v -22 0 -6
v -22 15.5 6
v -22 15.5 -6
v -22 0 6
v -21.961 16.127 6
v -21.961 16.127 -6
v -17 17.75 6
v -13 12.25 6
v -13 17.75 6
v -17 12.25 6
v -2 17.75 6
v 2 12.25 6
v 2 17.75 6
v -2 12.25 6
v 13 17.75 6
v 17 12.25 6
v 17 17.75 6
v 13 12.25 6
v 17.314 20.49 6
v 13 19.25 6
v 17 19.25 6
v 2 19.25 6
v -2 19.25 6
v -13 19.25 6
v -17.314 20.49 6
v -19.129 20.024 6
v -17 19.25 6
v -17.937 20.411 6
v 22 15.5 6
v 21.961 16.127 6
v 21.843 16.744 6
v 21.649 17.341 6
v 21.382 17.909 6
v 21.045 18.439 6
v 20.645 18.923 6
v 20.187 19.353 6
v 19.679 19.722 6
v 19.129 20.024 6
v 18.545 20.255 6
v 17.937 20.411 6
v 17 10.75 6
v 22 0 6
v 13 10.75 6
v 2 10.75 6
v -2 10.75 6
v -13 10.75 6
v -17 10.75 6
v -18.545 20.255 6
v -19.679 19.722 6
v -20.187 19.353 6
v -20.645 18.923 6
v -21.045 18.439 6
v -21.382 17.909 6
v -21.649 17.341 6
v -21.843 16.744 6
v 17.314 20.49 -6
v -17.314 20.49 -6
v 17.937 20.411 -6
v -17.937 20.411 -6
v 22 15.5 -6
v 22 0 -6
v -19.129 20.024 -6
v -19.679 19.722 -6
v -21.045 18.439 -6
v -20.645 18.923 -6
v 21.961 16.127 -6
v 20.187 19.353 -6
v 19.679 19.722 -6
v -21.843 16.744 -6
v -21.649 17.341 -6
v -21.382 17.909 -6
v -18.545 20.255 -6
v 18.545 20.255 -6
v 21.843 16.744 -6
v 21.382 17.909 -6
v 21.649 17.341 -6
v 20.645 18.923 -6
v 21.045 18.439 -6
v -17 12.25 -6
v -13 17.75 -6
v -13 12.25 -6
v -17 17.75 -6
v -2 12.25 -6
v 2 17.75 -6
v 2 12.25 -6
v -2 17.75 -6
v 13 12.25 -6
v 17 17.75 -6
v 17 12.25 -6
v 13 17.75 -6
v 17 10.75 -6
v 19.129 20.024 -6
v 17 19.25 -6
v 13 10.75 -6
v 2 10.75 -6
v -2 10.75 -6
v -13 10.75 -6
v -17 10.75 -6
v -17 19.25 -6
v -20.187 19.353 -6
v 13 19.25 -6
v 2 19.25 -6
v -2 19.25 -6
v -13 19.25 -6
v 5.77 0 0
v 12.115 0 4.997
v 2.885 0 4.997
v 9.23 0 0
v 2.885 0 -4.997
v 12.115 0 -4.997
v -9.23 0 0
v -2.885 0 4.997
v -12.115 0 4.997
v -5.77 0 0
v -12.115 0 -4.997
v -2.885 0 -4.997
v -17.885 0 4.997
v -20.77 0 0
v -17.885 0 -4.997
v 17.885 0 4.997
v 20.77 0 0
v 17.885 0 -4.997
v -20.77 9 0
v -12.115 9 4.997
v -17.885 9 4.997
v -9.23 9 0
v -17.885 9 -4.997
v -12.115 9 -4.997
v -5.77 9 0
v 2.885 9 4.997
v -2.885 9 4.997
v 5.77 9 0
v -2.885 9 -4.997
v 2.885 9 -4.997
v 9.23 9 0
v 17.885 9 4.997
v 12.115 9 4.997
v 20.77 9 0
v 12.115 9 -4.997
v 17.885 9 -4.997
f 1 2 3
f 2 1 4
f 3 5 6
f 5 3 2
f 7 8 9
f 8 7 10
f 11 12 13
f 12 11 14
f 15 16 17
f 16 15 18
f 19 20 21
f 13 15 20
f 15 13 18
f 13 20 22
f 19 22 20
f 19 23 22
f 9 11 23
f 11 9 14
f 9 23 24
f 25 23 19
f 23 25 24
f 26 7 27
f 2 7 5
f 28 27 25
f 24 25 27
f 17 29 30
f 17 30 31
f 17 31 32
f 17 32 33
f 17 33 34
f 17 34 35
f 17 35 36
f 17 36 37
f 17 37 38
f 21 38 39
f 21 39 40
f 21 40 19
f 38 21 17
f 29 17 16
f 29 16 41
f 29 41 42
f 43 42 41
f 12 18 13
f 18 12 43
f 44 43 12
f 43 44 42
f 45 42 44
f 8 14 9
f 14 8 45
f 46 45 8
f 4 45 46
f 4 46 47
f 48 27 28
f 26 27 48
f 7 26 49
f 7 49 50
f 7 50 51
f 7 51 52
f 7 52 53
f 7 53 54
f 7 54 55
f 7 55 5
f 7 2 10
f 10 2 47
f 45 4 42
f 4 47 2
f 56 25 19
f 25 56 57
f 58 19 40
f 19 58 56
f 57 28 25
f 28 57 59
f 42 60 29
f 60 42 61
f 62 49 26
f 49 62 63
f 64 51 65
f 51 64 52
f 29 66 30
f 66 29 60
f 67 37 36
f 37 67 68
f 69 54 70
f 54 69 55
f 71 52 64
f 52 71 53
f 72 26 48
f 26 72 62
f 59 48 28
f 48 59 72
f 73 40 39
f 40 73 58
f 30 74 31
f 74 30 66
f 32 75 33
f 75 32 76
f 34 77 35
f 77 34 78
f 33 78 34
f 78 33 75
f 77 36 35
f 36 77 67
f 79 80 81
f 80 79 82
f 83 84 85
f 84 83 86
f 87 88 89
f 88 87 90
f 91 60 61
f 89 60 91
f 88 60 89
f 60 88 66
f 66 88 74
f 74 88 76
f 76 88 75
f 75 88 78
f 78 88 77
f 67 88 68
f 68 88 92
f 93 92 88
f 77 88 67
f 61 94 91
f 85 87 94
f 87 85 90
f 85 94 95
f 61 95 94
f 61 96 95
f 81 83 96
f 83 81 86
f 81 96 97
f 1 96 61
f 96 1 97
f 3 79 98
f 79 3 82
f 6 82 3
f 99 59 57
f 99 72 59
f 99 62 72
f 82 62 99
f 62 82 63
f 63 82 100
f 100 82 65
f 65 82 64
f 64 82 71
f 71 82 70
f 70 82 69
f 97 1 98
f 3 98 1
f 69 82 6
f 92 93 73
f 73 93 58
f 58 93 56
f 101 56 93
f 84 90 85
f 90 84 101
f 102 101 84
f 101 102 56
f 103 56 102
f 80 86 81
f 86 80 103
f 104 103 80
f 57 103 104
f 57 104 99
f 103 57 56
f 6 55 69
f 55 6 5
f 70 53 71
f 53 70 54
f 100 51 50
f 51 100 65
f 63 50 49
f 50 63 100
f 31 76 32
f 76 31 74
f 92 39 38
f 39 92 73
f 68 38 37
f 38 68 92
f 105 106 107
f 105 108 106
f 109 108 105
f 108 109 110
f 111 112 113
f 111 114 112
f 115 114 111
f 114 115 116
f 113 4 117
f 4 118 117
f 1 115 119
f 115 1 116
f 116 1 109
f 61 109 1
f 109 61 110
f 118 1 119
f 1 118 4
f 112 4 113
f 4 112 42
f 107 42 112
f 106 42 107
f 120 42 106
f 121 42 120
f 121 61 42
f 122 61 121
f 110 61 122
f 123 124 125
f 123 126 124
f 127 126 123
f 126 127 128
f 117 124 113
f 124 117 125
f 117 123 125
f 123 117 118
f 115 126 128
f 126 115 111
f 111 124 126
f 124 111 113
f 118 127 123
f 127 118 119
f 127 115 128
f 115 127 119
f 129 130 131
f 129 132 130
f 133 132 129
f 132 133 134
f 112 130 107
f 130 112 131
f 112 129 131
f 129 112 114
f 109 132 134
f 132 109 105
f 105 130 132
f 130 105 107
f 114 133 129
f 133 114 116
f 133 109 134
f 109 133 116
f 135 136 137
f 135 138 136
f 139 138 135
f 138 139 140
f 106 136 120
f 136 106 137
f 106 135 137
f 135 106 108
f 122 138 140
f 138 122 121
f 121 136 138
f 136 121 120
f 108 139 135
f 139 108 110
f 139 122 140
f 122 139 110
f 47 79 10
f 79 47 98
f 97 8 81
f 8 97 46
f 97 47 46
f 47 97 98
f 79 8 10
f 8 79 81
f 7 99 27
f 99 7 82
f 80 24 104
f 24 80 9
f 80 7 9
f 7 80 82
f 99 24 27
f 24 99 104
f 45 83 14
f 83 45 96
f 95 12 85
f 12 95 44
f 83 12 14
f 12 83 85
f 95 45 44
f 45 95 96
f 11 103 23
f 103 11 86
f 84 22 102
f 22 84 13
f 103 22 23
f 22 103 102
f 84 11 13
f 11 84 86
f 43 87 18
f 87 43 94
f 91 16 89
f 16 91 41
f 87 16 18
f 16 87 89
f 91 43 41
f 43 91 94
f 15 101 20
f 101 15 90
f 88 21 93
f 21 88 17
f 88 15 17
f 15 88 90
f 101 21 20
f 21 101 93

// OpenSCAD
$fn = 50;


difference() {
	union() {
		translate(v = [0, 13.5000000000, -6.0000000000]) {
			hull() {
				translate(v = [-17.0000000000, 2.0000000000, 0]) {
					cylinder(h = 12, r = 5);
				}
				translate(v = [17.0000000000, 2.0000000000, 0]) {
					cylinder(h = 12, r = 5);
				}
				translate(v = [-17.0000000000, -2.0000000000, 0]) {
					cylinder(h = 12, r = 5);
				}
				translate(v = [17.0000000000, -2.0000000000, 0]) {
					cylinder(h = 12, r = 5);
				}
			}
		}
		translate(v = [0, 13.5000000000, -6.0000000000]) {
			hull() {
				translate(v = [-17.0000000000, 2.0000000000, 0]) {
					cylinder(h = 12, r = 5);
				}
				translate(v = [17.0000000000, 2.0000000000, 0]) {
					cylinder(h = 12, r = 5);
				}
				translate(v = [-17.0000000000, -2.0000000000, 0]) {
					cylinder(h = 12, r = 5);
				}
				translate(v = [17.0000000000, -2.0000000000, 0]) {
					cylinder(h = 12, r = 5);
				}
			}
		}
		translate(v = [-22.0000000000, 0, -6.0000000000]) {
			cube(size = [44, 13.5000000000, 12]);
		}
	}
	union() {
		translate(v = [-15.0000000000, 9, 0]) {
			rotate(a = [0, 0, 0]) {
				difference() {
					union() {
						rotate(a = [90, 0, 0]) {
							linear_extrude(height = 13.5000000000) {
								polygon(points = [[5.7700000000, 0.0000000000], [2.8850000000, 4.9969665798], [-2.8850000000, 4.9969665798], [-5.7700000000, 0.0000000000], [-2.8850000000, -4.9969665798], [2.8850000000, -4.9969665798]]);
							}
						}
					}
					union();
				}
			}
		}
		translate(v = [0.0000000000, 9, 0]) {
			rotate(a = [0, 0, 0]) {
				difference() {
					union() {
						rotate(a = [90, 0, 0]) {
							linear_extrude(height = 13.5000000000) {
								polygon(points = [[5.7700000000, 0.0000000000], [2.8850000000, 4.9969665798], [-2.8850000000, 4.9969665798], [-5.7700000000, 0.0000000000], [-2.8850000000, -4.9969665798], [2.8850000000, -4.9969665798]]);
							}
						}
					}
					union();
				}
			}
		}
		translate(v = [15.0000000000, 9, 0]) {
			rotate(a = [0, 0, 0]) {
				difference() {
					union() {
						rotate(a = [90, 0, 0]) {
							linear_extrude(height = 13.5000000000) {
								polygon(points = [[5.7700000000, 0.0000000000], [2.8850000000, 4.9969665798], [-2.8850000000, 4.9969665798], [-5.7700000000, 0.0000000000], [-2.8850000000, -4.9969665798], [2.8850000000, -4.9969665798]]);
							}
						}
					}
					union();
				}
			}
		}
		translate(v = [-17.0000000000, 10.7500000000, -50]) {
			cube(size = [4, 1.5000000000, 100]);
		}
		translate(v = [-17.0000000000, 17.7500000000, -50]) {
			cube(size = [4, 1.5000000000, 100]);
		}
		translate(v = [-15.0000000000, 8, 0]) {
			rotate(a = [90, 0, 0]) {
				cylinder(h = 8, r = 3.0000000000);
			}
		}
		translate(v = [-2.0000000000, 10.7500000000, -50]) {
			cube(size = [4, 1.5000000000, 100]);
		}
		translate(v = [-2.0000000000, 17.7500000000, -50]) {
			cube(size = [4, 1.5000000000, 100]);
		}
		translate(v = [0.0000000000, 8, 0]) {
			rotate(a = [90, 0, 0]) {
				cylinder(h = 8, r = 3.0000000000);
			}
		}
		translate(v = [13.0000000000, 10.7500000000, -50]) {
			cube(size = [4, 1.5000000000, 100]);
		}
		translate(v = [13.0000000000, 17.7500000000, -50]) {
			cube(size = [4, 1.5000000000, 100]);
		}
		translate(v = [15.0000000000, 8, 0]) {
			rotate(a = [90, 0, 0]) {
				cylinder(h = 8, r = 3.0000000000);
			}
		}
	}
}
